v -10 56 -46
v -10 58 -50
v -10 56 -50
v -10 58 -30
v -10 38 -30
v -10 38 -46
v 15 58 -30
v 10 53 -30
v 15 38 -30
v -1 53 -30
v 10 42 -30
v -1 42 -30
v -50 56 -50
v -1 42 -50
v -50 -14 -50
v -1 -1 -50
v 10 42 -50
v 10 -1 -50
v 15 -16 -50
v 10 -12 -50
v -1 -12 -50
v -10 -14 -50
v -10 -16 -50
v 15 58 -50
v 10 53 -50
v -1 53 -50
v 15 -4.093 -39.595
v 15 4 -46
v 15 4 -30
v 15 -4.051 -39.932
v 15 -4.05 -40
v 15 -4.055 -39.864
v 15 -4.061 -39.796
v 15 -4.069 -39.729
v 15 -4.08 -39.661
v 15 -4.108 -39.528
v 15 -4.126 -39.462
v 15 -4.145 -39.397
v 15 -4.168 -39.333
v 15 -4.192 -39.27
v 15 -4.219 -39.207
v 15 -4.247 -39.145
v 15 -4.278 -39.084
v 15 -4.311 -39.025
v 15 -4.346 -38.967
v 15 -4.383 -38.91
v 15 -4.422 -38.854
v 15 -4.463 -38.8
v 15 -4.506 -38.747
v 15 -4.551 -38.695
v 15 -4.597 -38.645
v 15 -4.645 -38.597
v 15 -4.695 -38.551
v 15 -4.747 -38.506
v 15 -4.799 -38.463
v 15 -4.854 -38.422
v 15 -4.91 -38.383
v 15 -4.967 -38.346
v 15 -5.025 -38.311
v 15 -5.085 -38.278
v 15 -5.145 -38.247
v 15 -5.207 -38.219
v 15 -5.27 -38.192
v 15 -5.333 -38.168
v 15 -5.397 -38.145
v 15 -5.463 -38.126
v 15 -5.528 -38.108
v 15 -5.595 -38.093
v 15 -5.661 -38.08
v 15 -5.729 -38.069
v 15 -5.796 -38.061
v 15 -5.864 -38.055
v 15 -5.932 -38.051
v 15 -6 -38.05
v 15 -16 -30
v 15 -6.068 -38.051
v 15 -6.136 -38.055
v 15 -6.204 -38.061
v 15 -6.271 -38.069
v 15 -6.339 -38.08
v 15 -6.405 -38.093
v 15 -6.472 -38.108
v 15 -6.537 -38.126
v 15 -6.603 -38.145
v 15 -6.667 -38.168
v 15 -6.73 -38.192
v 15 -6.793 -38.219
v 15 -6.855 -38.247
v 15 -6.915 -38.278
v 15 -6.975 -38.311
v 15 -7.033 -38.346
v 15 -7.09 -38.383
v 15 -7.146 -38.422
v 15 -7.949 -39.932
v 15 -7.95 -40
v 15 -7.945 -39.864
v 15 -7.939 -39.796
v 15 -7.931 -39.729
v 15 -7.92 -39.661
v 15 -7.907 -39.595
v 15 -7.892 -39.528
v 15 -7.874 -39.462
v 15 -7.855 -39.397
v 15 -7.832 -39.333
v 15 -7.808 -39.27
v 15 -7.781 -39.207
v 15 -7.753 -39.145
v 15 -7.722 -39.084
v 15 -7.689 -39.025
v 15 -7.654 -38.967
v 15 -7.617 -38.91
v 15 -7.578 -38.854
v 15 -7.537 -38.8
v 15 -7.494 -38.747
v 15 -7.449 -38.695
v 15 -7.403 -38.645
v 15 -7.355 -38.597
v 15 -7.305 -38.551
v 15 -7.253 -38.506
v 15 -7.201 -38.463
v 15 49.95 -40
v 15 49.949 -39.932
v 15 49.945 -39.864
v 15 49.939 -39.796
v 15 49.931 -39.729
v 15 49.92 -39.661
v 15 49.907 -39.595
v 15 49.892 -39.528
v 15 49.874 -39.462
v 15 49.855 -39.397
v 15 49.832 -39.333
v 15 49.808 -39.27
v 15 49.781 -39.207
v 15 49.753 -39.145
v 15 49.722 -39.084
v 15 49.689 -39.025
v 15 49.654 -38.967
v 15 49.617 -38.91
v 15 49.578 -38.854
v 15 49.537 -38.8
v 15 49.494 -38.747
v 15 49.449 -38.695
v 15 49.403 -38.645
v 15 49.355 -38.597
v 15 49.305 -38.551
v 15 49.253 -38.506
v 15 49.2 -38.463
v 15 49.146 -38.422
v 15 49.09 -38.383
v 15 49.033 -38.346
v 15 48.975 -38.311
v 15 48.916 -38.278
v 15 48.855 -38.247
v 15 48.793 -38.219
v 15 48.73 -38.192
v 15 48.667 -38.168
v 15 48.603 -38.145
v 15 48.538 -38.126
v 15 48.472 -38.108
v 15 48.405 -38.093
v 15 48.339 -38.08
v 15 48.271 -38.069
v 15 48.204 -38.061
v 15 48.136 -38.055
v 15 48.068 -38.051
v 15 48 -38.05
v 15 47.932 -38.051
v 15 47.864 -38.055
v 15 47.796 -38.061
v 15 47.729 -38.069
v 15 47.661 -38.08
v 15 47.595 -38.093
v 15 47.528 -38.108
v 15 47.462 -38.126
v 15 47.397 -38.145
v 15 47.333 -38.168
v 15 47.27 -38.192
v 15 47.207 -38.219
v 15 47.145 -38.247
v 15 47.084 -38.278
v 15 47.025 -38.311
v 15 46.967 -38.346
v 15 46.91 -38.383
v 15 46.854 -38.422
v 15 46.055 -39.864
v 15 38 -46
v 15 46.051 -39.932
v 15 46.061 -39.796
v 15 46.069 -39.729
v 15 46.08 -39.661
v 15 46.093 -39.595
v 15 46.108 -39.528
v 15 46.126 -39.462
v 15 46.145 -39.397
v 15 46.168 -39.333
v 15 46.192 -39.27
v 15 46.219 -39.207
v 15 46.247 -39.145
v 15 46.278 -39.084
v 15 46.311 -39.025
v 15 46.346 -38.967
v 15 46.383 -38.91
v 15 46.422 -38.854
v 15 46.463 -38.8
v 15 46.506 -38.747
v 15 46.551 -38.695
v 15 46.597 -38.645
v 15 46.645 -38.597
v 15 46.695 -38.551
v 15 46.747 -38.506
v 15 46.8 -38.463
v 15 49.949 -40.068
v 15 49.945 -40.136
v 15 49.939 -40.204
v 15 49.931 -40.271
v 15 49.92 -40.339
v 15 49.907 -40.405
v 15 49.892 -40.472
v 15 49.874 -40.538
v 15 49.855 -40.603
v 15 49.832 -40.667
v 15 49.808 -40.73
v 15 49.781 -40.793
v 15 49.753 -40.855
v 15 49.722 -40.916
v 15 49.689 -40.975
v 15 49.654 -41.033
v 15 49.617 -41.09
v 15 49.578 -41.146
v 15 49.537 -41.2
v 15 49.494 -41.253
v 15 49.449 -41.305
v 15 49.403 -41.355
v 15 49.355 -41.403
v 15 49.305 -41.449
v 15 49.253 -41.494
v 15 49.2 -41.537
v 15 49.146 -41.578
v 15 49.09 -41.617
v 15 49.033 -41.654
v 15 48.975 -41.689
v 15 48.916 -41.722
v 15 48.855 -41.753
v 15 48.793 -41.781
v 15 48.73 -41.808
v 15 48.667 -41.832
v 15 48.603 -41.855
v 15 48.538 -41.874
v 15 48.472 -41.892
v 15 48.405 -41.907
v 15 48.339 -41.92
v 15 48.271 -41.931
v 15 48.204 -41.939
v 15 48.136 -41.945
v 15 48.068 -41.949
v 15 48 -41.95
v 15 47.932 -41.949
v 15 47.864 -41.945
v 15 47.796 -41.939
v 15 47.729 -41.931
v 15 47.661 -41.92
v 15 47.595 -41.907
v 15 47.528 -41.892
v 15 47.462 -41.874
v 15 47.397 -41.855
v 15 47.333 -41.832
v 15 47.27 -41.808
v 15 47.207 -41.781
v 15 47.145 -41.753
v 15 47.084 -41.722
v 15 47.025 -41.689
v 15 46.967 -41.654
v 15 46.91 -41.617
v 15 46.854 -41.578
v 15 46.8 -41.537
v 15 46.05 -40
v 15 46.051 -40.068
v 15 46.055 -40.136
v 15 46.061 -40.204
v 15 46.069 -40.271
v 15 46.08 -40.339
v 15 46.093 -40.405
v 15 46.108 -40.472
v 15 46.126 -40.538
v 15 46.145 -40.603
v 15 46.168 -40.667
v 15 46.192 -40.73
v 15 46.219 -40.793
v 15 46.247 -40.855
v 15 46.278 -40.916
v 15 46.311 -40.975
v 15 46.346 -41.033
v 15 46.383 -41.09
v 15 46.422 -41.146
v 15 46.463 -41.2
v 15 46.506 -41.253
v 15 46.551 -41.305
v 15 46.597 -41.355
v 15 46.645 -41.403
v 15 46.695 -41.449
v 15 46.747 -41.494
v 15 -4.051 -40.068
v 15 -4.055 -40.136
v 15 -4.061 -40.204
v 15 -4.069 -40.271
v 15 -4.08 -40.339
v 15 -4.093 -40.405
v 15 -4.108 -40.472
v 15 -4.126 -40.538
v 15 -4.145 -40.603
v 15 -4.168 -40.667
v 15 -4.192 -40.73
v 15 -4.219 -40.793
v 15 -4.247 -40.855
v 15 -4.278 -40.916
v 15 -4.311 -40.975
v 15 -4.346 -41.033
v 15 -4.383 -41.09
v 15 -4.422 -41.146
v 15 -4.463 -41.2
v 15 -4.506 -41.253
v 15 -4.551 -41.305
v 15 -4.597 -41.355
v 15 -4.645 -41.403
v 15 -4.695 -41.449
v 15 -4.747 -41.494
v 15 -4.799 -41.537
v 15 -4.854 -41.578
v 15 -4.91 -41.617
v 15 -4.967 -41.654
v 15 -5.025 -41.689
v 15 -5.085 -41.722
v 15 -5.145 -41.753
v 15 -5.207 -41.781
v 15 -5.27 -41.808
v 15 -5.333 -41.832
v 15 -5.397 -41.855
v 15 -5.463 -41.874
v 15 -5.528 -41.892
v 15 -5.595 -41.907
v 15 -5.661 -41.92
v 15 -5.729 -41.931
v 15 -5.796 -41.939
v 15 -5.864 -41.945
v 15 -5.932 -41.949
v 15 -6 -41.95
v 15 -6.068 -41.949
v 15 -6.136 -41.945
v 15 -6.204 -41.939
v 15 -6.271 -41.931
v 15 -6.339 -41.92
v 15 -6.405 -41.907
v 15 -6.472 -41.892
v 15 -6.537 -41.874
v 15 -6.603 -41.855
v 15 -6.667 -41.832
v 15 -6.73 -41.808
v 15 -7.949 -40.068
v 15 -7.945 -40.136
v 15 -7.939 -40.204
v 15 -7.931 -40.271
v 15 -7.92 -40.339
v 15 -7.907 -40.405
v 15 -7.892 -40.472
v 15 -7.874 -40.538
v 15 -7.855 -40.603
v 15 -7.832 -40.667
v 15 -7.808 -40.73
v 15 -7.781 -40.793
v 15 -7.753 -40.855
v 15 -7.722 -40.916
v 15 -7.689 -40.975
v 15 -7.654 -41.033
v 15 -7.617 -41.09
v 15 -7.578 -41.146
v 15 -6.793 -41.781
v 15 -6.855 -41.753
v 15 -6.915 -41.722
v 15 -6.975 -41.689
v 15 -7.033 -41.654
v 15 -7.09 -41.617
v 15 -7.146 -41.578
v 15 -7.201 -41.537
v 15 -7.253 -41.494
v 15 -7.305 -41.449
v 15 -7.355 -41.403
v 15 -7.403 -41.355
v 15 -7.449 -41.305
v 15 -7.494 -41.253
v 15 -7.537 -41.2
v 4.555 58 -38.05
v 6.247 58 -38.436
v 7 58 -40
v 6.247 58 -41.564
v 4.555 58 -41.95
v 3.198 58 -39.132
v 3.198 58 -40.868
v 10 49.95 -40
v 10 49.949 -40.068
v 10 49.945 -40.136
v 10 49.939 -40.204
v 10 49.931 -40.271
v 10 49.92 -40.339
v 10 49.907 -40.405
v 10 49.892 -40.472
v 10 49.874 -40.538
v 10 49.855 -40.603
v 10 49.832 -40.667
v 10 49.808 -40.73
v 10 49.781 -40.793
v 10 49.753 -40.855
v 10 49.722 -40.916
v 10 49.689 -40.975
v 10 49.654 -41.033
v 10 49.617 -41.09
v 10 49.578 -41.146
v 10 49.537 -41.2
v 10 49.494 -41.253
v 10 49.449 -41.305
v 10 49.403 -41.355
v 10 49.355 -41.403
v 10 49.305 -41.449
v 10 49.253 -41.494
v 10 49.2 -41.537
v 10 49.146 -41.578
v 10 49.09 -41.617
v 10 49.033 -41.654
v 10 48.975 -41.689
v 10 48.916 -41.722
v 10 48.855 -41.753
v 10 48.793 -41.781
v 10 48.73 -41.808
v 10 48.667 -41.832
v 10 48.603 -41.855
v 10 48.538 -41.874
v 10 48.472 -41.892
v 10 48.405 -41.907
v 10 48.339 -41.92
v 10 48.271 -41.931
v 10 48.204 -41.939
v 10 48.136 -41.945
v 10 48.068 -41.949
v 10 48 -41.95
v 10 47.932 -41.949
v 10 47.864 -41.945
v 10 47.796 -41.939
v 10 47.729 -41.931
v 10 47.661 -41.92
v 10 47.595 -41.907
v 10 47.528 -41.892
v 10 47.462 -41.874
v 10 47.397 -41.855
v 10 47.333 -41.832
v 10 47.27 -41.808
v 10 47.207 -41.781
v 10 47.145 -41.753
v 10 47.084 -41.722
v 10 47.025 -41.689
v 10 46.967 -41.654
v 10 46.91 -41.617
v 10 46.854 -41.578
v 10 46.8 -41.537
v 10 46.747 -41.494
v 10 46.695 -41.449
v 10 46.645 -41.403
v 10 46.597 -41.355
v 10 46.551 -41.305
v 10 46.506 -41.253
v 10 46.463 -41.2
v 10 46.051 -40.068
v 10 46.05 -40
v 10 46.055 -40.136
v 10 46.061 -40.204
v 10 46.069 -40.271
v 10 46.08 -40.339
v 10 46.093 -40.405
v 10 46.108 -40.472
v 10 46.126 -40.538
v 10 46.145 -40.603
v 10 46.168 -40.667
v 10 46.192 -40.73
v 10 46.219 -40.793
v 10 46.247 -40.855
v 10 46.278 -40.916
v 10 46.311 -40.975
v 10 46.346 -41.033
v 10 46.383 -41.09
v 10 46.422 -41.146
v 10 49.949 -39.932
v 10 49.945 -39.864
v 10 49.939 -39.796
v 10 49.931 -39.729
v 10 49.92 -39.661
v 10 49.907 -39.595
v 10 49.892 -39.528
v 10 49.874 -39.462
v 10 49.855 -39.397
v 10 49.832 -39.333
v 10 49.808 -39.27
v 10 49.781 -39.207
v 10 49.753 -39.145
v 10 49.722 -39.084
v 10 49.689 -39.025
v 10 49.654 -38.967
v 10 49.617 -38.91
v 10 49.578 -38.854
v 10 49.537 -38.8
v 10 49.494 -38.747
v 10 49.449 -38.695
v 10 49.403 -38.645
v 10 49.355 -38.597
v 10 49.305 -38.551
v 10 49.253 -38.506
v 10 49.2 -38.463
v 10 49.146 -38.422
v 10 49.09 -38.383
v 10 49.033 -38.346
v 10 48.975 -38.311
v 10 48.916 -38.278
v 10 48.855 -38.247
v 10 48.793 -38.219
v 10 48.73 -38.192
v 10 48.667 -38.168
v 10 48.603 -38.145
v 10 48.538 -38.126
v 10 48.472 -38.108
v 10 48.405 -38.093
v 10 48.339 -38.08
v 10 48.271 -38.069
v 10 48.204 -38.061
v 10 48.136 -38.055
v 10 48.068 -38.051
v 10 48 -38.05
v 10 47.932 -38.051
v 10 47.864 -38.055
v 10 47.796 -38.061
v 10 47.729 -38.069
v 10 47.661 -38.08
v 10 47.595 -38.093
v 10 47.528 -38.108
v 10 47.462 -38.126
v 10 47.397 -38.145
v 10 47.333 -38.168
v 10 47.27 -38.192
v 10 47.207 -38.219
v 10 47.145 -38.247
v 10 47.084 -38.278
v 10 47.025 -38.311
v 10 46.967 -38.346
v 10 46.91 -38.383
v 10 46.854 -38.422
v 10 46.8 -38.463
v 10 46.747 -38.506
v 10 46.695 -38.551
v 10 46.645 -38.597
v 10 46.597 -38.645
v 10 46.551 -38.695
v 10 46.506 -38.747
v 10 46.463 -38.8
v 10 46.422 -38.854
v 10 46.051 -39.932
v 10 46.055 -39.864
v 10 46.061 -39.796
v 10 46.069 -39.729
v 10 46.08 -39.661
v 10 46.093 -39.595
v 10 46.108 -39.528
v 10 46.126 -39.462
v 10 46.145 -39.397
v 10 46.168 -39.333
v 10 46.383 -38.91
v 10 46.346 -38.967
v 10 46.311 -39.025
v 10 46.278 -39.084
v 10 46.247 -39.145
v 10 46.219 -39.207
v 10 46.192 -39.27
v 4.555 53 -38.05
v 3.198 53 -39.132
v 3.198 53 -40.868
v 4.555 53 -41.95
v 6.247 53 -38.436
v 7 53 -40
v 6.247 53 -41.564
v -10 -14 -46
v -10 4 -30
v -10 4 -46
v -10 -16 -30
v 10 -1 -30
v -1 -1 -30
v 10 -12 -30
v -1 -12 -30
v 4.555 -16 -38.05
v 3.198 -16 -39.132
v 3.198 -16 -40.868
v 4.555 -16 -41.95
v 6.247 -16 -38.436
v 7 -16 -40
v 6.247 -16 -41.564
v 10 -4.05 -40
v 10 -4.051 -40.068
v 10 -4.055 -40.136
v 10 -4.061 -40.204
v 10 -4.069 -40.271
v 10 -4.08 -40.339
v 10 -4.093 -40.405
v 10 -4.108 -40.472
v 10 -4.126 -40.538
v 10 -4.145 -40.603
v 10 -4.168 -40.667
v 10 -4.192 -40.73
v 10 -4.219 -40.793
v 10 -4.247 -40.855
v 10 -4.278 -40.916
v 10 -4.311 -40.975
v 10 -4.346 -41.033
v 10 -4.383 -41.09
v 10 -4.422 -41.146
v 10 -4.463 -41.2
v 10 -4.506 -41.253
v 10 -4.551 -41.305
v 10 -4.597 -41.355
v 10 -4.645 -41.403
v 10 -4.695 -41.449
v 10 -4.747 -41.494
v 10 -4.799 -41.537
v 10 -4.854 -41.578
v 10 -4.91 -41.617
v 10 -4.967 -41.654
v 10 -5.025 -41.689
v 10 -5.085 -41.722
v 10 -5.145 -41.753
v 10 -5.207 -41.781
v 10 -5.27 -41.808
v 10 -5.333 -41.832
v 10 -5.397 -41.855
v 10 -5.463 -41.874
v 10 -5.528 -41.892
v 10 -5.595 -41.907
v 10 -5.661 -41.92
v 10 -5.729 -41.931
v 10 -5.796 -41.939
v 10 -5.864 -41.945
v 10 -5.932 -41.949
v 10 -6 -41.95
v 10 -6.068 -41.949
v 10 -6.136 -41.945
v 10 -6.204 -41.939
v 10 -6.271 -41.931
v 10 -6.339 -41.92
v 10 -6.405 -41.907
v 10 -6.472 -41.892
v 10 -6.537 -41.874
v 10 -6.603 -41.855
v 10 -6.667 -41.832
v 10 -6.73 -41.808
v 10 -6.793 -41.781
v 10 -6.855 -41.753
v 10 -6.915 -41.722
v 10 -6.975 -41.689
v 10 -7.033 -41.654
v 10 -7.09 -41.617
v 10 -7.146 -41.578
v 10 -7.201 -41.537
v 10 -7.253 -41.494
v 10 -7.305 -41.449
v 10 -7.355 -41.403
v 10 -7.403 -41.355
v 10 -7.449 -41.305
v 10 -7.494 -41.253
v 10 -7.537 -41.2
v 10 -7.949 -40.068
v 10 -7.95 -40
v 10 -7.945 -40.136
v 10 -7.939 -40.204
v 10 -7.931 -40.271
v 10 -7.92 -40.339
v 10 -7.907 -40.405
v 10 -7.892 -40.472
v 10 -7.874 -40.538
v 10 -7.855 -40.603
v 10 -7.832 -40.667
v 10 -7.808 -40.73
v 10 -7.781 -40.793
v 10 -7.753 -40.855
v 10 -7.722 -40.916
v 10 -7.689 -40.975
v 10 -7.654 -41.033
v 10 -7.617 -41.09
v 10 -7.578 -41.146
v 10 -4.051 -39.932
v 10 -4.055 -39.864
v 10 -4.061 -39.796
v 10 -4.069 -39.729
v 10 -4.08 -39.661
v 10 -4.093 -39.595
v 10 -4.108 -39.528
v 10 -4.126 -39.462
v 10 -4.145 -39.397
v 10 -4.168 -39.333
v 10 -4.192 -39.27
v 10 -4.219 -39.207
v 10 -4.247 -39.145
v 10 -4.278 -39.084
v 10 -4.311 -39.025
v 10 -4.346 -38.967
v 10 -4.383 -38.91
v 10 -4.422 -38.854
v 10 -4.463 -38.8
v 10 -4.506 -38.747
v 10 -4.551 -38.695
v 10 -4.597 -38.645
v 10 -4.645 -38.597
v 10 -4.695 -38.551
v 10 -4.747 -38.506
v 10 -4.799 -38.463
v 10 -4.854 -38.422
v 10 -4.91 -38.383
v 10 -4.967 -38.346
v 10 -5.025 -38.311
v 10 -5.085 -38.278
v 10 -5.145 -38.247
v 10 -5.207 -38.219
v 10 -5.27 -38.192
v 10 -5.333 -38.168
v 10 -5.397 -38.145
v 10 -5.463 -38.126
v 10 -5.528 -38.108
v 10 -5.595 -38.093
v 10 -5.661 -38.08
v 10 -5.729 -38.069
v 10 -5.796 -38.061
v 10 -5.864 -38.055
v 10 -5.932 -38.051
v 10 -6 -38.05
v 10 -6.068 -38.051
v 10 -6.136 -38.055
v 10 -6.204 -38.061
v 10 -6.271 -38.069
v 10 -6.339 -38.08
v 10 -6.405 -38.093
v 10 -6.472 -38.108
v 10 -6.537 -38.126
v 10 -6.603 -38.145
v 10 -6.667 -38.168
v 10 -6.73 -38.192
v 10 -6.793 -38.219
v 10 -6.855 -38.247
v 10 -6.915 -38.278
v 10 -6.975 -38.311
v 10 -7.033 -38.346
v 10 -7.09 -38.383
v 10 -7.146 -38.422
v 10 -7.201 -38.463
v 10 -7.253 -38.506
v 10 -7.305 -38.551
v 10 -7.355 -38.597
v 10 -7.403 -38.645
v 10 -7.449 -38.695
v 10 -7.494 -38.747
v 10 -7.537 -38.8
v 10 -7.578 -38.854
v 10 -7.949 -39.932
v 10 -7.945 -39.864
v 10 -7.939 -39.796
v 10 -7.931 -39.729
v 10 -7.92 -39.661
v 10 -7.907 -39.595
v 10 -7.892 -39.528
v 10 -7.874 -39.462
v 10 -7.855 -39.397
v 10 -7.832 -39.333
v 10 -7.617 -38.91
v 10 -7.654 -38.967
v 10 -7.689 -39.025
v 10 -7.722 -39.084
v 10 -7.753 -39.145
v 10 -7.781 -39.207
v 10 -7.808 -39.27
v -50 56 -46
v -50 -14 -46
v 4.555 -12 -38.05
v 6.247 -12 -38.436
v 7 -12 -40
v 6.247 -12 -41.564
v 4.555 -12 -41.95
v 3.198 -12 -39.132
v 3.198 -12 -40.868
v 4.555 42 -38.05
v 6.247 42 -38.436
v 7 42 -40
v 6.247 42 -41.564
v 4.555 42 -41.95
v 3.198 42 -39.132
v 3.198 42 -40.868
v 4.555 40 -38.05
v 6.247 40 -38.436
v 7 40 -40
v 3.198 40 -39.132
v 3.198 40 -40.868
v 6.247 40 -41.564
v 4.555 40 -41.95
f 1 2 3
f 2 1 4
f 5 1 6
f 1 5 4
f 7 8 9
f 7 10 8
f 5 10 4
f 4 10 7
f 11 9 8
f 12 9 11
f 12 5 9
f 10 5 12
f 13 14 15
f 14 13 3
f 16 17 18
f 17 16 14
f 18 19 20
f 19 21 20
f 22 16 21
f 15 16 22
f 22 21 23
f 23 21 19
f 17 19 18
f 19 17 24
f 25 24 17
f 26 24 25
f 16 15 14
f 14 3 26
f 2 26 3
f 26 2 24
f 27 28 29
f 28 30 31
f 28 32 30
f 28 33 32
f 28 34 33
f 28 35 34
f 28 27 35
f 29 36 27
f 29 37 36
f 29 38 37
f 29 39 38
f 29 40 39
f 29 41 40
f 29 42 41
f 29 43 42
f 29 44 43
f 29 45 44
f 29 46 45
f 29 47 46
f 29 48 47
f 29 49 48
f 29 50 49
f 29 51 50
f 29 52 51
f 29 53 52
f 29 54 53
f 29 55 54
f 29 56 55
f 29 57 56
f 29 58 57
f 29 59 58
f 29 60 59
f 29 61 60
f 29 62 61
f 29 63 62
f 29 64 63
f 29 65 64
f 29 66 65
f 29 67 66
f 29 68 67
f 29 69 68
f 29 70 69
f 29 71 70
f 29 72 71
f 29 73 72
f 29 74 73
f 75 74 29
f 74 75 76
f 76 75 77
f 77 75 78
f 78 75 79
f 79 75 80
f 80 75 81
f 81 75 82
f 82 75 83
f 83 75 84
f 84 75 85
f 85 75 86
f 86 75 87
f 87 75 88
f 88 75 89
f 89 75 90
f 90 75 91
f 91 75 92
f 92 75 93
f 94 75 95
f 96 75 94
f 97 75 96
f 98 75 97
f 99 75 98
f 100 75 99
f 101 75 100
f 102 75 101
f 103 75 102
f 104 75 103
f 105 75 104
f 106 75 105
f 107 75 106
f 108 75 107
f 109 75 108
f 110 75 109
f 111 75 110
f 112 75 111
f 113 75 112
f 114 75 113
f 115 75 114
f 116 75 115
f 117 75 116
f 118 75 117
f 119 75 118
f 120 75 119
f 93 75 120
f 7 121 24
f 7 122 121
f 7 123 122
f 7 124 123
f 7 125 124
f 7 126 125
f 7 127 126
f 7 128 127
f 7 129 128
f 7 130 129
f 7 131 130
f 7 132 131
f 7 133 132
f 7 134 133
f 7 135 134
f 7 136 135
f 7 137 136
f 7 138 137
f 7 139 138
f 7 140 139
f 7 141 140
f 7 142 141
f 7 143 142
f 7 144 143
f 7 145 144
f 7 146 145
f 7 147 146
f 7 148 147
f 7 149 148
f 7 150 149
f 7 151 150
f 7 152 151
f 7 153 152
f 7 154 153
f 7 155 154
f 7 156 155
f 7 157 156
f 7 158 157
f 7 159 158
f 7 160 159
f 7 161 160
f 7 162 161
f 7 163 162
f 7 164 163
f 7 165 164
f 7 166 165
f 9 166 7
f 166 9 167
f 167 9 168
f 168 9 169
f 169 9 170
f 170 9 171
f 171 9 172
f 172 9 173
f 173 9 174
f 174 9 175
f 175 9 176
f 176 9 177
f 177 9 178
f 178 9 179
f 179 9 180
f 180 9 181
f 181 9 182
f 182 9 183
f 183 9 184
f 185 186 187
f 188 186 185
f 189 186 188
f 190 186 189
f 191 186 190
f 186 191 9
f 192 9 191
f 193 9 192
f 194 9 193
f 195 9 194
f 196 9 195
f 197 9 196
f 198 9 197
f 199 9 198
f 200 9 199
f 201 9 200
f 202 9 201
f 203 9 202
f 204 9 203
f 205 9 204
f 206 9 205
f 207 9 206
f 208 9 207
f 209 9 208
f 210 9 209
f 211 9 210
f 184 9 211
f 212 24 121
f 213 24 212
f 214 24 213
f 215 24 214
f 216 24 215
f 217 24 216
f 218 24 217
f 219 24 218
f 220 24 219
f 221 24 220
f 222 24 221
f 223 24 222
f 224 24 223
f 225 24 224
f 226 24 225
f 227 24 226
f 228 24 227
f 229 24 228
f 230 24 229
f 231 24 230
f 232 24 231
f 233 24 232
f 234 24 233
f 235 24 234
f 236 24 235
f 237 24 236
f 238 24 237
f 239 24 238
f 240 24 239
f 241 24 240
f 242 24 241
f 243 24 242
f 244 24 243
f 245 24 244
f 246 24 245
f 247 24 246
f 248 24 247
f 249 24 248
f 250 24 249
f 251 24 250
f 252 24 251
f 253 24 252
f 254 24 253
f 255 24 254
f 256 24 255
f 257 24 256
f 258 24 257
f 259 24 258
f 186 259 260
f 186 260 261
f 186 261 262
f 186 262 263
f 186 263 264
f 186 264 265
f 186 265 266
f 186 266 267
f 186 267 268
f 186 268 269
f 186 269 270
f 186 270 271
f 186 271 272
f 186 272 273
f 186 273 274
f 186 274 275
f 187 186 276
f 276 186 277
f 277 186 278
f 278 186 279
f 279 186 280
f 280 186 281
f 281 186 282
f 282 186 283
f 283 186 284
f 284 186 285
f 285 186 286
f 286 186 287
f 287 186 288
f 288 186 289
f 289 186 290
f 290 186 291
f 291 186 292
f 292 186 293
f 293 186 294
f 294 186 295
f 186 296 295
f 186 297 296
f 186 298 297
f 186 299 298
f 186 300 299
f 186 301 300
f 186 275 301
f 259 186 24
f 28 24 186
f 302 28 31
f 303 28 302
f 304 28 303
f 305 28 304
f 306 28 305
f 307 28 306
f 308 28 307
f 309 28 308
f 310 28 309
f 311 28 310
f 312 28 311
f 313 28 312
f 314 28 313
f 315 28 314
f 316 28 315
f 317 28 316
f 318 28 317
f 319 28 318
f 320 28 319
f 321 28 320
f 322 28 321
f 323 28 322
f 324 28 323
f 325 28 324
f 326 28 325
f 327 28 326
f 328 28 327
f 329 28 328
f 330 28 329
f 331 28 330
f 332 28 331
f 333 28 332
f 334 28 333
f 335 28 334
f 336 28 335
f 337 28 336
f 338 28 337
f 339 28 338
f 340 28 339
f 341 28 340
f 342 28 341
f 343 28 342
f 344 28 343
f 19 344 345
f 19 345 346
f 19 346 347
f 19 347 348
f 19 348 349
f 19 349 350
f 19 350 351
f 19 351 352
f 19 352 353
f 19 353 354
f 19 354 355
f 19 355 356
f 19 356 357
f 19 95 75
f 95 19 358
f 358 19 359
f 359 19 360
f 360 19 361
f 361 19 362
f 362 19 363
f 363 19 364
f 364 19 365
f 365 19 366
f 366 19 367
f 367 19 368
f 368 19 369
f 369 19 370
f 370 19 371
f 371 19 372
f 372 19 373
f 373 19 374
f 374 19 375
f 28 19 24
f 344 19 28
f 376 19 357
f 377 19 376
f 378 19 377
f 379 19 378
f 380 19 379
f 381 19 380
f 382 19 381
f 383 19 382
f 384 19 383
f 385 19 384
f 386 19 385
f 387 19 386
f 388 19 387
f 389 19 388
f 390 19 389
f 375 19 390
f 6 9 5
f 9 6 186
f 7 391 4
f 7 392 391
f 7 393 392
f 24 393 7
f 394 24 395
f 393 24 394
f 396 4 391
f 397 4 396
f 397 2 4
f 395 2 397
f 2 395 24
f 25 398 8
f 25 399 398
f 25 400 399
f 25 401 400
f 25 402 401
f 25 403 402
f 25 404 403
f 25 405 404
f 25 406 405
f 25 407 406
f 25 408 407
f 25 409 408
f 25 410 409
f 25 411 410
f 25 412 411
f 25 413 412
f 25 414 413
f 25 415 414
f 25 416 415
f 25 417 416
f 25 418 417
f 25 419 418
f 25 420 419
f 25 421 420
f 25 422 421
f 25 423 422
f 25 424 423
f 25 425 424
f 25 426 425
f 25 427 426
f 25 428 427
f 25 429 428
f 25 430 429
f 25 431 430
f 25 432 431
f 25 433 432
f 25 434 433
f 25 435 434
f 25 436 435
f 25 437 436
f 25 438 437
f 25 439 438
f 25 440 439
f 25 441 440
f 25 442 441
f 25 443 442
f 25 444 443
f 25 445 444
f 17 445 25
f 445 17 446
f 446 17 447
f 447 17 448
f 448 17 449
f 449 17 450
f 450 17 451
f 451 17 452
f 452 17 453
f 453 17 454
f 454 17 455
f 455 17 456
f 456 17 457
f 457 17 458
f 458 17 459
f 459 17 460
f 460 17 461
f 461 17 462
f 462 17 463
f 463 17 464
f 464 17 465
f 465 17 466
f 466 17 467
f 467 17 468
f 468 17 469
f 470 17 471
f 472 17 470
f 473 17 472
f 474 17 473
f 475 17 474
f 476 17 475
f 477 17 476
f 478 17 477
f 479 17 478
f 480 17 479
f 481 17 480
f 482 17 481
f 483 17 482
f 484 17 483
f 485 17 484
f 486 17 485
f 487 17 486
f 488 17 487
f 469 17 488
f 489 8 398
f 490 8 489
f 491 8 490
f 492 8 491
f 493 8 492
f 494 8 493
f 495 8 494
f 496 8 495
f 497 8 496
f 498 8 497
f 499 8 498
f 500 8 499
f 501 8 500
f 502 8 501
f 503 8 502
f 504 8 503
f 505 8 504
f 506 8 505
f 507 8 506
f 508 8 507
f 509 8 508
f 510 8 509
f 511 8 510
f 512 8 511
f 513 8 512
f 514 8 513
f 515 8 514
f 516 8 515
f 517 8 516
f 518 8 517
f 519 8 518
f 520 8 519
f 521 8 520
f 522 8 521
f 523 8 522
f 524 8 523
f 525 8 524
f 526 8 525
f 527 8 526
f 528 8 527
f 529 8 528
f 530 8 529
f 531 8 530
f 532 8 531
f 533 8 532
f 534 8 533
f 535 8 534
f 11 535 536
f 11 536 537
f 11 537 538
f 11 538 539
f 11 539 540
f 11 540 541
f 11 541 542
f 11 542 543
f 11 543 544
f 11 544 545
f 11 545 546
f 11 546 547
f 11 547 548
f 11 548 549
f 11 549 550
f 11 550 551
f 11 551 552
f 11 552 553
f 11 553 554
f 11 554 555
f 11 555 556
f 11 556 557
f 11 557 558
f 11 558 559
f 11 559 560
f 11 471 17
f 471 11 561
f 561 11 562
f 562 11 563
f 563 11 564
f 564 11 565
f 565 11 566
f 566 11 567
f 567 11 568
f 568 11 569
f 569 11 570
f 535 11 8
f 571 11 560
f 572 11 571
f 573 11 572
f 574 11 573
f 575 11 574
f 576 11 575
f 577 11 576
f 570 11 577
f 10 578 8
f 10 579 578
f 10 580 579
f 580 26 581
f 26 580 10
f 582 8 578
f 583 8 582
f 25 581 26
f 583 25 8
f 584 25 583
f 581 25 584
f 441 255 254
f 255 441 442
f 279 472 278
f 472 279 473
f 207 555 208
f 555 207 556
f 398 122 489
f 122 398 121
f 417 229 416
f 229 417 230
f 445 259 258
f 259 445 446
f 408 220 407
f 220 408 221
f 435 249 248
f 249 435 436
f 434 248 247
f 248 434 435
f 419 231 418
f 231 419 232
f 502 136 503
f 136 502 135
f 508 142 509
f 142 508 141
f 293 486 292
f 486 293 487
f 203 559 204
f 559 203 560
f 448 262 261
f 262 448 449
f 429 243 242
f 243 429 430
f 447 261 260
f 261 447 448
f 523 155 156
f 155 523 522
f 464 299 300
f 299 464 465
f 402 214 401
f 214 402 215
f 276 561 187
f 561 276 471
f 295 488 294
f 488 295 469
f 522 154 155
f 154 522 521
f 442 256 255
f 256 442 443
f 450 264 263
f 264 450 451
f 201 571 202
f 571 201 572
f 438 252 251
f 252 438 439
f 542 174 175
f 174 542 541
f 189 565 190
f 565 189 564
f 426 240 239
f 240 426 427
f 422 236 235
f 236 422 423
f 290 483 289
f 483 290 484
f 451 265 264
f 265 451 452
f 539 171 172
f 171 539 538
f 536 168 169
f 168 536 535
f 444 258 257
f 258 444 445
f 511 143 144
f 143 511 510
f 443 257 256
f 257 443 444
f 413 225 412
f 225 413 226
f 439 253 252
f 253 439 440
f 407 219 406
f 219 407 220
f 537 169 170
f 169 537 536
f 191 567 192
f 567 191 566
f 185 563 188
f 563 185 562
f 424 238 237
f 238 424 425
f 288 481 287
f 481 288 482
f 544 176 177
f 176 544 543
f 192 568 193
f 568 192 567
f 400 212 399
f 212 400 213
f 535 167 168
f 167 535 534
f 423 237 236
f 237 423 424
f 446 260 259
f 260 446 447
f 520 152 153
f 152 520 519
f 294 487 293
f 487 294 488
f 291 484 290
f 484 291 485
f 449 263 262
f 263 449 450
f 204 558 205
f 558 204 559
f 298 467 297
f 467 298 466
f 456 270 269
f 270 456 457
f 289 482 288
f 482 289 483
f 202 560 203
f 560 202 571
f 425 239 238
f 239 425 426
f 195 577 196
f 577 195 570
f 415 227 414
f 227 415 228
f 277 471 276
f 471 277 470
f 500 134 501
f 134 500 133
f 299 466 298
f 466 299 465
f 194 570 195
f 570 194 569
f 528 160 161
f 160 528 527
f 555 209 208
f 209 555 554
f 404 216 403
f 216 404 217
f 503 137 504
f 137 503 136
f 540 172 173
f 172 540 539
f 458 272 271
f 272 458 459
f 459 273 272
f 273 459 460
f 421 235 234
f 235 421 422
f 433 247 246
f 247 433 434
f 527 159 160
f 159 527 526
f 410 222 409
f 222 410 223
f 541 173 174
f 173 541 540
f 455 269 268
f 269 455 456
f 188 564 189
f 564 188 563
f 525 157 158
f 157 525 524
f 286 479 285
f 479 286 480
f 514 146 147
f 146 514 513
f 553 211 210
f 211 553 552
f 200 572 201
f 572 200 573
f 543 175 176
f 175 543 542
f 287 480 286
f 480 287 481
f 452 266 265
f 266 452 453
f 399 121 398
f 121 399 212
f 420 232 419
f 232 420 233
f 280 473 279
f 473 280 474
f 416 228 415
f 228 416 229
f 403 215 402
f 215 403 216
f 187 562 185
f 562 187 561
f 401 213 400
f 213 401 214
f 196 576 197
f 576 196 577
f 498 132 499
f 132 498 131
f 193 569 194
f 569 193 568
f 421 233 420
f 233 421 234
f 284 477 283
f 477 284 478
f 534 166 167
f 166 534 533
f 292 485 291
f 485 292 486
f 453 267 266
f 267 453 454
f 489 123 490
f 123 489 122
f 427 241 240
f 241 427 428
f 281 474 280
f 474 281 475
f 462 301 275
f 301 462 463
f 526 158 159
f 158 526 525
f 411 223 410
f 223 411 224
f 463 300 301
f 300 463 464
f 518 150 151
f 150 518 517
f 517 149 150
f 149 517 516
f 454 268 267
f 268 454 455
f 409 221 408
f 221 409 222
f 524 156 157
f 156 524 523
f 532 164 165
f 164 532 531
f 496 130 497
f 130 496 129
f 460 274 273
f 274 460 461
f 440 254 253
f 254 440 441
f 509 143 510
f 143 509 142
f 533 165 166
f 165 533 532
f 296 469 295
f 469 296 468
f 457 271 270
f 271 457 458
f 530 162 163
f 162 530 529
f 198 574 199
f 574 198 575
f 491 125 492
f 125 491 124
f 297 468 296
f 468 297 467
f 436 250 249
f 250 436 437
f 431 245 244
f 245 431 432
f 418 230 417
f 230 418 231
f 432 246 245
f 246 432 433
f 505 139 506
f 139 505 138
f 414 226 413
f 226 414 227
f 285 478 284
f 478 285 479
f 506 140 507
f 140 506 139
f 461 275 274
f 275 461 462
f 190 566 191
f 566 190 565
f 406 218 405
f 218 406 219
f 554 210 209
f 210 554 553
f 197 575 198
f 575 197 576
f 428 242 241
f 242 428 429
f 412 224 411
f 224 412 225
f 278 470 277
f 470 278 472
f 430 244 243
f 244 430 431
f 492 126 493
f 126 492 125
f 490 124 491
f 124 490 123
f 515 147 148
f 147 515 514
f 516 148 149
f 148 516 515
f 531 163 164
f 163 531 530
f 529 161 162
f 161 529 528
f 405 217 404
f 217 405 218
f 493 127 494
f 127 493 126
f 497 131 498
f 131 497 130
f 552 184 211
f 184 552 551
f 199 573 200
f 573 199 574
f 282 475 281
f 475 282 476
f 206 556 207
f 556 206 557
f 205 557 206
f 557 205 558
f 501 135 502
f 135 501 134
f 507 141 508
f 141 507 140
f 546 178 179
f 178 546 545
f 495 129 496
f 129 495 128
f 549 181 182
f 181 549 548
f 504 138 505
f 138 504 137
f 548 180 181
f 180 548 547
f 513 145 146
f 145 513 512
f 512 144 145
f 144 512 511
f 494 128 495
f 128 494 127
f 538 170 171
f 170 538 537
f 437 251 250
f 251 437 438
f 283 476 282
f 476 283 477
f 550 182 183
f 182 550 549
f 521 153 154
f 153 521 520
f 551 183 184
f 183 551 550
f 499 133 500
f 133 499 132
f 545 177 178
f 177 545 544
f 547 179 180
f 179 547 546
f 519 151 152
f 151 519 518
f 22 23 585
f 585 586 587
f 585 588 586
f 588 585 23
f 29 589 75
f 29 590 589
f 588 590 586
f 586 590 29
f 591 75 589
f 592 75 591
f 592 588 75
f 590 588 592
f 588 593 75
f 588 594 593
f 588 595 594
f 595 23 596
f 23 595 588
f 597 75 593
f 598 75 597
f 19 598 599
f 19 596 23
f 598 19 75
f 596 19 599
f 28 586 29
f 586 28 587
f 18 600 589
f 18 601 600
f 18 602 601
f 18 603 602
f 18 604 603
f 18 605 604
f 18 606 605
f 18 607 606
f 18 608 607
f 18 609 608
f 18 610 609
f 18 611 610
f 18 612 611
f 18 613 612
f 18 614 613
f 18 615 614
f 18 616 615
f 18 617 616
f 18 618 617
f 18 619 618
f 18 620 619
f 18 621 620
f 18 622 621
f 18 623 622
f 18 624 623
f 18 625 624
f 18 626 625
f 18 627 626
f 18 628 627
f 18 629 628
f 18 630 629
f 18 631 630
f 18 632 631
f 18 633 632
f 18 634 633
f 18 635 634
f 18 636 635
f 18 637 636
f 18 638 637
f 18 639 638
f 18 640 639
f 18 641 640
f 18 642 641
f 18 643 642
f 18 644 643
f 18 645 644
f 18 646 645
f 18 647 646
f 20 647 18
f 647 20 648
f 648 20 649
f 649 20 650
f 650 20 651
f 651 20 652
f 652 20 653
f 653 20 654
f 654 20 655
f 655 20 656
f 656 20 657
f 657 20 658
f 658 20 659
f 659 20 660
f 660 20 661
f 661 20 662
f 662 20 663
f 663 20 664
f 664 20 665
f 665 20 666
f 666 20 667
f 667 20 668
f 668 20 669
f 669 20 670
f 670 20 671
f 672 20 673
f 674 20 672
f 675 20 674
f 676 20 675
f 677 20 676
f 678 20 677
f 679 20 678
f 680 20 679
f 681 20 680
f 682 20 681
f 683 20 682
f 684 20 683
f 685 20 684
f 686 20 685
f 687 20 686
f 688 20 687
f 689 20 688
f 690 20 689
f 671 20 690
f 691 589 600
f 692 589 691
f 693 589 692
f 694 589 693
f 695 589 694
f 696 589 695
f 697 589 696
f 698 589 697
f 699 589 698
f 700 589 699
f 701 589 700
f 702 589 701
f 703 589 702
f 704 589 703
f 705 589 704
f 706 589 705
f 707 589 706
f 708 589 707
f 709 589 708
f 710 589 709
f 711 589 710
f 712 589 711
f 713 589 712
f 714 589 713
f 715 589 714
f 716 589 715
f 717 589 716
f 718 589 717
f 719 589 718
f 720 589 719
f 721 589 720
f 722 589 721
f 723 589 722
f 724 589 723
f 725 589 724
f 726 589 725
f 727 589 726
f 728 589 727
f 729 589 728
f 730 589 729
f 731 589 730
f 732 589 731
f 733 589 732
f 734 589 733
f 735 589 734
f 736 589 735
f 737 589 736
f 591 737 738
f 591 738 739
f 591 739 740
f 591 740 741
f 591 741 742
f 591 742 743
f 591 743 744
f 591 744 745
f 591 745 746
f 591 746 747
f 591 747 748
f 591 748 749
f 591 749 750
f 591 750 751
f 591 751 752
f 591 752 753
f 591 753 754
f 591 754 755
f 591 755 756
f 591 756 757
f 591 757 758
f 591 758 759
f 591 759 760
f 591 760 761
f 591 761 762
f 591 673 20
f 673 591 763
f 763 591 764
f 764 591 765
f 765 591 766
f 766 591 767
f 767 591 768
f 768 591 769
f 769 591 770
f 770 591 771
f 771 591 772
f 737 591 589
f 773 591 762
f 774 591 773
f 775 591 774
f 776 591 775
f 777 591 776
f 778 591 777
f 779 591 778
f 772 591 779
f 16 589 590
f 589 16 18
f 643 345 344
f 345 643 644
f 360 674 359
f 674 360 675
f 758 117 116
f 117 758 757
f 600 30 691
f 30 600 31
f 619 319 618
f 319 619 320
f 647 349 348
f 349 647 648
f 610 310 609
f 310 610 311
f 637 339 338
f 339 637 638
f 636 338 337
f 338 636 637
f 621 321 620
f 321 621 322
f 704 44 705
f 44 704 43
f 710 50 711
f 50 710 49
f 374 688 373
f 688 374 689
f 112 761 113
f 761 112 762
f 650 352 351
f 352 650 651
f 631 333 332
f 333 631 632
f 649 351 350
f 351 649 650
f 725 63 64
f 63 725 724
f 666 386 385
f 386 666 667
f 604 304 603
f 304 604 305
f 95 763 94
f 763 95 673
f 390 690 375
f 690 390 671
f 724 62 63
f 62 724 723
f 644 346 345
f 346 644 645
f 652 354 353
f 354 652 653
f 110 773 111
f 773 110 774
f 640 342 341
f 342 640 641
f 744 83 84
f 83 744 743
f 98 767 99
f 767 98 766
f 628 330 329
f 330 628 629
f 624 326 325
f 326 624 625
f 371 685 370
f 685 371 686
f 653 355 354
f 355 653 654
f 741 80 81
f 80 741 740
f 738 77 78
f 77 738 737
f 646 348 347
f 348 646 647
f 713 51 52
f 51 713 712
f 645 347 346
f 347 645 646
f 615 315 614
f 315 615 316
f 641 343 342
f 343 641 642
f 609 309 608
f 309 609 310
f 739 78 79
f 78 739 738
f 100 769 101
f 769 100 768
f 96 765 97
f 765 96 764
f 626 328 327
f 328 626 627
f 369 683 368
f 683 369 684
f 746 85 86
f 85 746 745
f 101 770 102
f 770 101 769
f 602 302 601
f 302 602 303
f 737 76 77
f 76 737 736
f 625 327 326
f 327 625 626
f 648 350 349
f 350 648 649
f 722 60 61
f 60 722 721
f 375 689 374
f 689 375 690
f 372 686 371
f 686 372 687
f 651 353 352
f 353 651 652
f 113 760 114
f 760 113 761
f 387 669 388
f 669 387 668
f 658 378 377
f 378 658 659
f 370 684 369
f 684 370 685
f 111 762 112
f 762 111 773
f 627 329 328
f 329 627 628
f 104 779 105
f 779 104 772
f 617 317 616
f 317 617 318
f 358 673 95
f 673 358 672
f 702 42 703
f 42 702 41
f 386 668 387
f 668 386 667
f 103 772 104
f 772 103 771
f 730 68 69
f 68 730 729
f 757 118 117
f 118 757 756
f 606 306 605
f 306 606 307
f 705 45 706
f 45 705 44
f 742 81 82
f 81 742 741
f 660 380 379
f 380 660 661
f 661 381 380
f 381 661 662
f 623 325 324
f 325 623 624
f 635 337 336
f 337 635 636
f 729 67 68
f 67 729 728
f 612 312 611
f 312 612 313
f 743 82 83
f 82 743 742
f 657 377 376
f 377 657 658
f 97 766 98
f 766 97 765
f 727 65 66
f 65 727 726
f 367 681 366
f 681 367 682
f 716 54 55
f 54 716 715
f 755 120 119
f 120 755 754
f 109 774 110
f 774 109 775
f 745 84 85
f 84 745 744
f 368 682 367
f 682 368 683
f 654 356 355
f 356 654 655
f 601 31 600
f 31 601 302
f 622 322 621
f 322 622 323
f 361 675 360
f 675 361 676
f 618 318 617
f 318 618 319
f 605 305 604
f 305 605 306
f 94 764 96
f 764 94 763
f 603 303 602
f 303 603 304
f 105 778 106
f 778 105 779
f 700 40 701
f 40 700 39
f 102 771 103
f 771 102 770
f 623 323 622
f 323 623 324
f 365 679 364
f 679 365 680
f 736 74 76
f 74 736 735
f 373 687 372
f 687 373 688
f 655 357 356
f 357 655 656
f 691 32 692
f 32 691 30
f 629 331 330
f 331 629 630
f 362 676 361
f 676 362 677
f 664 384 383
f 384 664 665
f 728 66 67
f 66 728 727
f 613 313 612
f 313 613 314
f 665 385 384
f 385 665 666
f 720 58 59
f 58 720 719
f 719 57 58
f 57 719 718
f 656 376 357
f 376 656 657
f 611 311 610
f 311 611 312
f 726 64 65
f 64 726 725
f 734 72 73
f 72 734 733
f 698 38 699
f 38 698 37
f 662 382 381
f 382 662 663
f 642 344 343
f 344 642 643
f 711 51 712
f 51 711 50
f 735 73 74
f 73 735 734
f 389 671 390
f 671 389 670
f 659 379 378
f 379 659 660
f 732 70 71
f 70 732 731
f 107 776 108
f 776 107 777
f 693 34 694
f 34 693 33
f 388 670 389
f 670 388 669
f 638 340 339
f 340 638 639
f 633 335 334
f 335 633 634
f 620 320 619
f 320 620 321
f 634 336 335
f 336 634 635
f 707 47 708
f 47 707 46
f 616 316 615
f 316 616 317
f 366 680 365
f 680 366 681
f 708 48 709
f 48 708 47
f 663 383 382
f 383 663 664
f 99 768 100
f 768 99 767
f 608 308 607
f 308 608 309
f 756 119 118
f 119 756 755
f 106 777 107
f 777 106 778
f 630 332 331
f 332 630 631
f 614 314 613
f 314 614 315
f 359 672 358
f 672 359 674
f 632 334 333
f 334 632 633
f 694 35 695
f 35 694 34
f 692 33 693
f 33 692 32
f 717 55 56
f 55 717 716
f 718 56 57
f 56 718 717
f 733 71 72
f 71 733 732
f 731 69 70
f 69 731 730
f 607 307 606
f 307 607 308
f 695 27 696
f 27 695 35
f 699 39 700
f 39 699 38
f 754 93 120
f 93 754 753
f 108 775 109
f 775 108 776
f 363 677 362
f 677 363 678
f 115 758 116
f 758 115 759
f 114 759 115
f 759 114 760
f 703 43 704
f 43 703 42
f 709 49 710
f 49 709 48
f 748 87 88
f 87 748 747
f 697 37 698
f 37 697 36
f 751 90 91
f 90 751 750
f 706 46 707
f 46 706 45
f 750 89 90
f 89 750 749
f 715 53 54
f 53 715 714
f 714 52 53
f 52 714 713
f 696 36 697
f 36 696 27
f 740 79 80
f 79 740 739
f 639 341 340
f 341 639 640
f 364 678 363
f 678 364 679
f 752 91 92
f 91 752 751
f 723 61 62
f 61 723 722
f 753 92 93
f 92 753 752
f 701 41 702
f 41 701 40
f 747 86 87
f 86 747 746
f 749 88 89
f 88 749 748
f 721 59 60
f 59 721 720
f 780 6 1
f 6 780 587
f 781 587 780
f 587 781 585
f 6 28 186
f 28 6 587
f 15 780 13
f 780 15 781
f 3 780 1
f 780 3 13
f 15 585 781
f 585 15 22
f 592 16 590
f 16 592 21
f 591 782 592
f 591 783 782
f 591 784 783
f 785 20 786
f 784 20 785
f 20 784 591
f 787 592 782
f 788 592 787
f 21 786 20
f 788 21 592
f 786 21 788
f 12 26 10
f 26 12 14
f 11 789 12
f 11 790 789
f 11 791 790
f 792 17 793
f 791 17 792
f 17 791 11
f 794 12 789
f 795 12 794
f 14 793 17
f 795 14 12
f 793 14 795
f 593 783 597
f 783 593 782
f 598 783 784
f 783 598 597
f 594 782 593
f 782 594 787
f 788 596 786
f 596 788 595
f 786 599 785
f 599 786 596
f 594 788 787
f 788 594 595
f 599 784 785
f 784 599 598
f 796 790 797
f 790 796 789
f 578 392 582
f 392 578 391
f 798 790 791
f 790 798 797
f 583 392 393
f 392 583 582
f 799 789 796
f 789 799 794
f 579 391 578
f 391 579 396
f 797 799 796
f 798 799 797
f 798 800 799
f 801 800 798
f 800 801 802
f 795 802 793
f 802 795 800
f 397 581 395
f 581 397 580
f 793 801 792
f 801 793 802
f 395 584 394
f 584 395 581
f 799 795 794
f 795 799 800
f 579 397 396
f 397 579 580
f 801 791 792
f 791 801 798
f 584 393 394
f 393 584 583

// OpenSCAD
// BOTTOM CONTROL SUPPORT 

difference(){
union() {
// RIGHT BOTTOM ARM 
rotate([0, 0, 180])
translate([-15, -58, -150])

difference(){
    
    union(){
translate([0, 0, 100])
cube([25, 20, 20]);
    }

translate([5, 5, 90])
cube([10.5, 10.5, 50]);

translate([-10,10,110])
rotate([0,90,0])
cylinder(h = 20, d= 3.9, $fn=180);
}

// LEFT BOTTOM ARM 

rotate([0, 0, 180])
translate([-15, -4, -150])

difference(){
    
    union(){
translate([0, 0, 100])
cube([25, 20, 20]);
    }

translate([5, 5, 90])
cube([10.5, 10.5, 50]);

translate([-10,10,110])
rotate([0,90,0])
cylinder(h = 20, d= 3.9, $fn=180);
}


// Bottom support plate 

translate([-50, -14, -50])
cube([65, 70, 4]);
}

translate([-1, -12, -60])
cube([11, 11, 100]);

translate([-1, 42, -60])
cube([11, 11, 100]);

translate([5, -10,-40])
rotate([90,0,0])
cylinder(h =20,d = 4);


translate([5, 60,-40])
rotate([90,0,0])
cylinder(h =20,d = 4);

}
